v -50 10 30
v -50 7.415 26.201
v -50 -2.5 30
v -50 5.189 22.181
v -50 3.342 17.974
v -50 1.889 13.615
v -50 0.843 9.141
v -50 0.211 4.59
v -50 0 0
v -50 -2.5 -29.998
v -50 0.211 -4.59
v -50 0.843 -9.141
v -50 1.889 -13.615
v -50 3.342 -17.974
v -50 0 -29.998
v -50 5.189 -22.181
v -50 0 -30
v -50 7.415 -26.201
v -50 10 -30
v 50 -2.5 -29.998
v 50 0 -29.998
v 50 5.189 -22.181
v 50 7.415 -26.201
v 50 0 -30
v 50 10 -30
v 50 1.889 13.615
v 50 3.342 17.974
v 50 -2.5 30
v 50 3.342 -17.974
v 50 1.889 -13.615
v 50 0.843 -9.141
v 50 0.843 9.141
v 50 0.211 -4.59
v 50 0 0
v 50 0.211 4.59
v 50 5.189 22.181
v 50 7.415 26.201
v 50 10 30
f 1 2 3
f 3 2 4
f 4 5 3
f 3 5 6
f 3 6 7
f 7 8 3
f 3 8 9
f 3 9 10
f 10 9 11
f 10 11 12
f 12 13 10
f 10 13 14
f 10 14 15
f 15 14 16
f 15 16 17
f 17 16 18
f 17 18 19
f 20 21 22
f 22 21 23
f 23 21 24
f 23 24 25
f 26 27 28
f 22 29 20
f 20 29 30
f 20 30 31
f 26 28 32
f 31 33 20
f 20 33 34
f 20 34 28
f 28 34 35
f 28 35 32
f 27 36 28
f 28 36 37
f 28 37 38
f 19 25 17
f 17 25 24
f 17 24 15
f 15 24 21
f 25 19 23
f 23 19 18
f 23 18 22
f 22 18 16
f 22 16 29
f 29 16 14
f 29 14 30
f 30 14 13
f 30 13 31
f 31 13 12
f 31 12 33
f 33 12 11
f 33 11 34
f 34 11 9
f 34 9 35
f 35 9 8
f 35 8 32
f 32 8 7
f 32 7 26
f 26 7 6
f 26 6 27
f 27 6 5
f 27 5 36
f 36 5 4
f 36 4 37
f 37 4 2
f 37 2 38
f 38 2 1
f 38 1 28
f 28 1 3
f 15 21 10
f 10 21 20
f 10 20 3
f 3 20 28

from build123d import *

# Parameters (mm, degrees)
SKETCH1_W               = 100
SKETCH1_H               = 60
BOSS_EXTRUDE4_DEPTH     = 10
CUT_EXTRUDE1_DEPTH      = 105.880884817
CUT_EXTRUDE1_DEPTH_BACK = 100
SKETCH3_W               = 59.99788365
SKETCH3_H               = 10
BOSS_EXTRUDE5_DEPTH     = 100
SKETCH4_W               = 100
SKETCH4_H               = 5
CUT_EXTRUDE2_DEPTH      = 60
SKETCH5_W               = 100
SKETCH5_H               = 2.5
CUT_EXTRUDE3_DEPTH      = 60


with BuildPart() as part:
    # Sketch1 → Boss-Extrude4 (new body)
    with BuildSketch(Plane(origin=(0, 0, 0), x_dir=(1, 0, 0), z_dir=(0, 1, 0))):
        Rectangle(SKETCH1_W, SKETCH1_H)
    extrude(amount=BOSS_EXTRUDE4_DEPTH)

    # Sketch2 → Cut-Extrude1 (cut, two sides: drawn at the far end of the back side and taken through both)
    with BuildSketch(Plane(origin=(50, 0, 0), x_dir=(0, 0, -1), z_dir=(1, 0, 0)).offset(-CUT_EXTRUDE1_DEPTH_BACK)):
        with BuildLine():
            Line((-135.324200485, 88.993150364), (-30, 10))
            ThreePointArc((-30, 10), (0, 0), (30, 10))
            Line((30, 10), (135.324200485, 88.993150364))
            Line((135.324200485, 88.993150364), (135.324200485, 352.303651576))
            Line((135.324200485, 352.303651576), (-135.324200485, 352.303651576))
            Line((-135.324200485, 352.303651576), (-135.324200485, 88.993150364))
        make_face()
    extrude(amount=CUT_EXTRUDE1_DEPTH + CUT_EXTRUDE1_DEPTH_BACK, mode=Mode.SUBTRACT)


with BuildPart() as cut_extrude1_piece_1:
    # of the separate pieces the step leaves, piece 1, a body of its own (cut_extrude1_pieces)
    add(part.part.solids().sort_by_distance((50, 0, 30))[0])



with BuildPart() as cut_extrude1_piece_2:
    # of the separate pieces the step leaves, piece 2, a body of its own (cut_extrude1_pieces)
    add(part.part.solids().sort_by_distance((50, 0, -30))[0])


with BuildPart() as cut_extrude1_piece_1_1:
    add(cut_extrude1_piece_1.part)

    add(cut_extrude1_piece_2.part)  # Boss-Extrude5 merges Cut-Extrude1 piece 2
    # Sketch3 → Boss-Extrude5 (add)
    with BuildSketch(Plane(origin=(50, 0, 0), x_dir=(0, 0, -1), z_dir=(1, 0, 0))):
        with Locations((-0.001058175, -5)):
            Rectangle(SKETCH3_W, SKETCH3_H)
    extrude(amount=-BOSS_EXTRUDE5_DEPTH)

    # Sketch4 → Cut-Extrude2 (cut)
    with BuildSketch(Plane(origin=(0, 0, -29.99788365), x_dir=(-1, 0, 0), z_dir=(0, 0, -1))):
        with Locations((0, -7.5)):
            Rectangle(SKETCH4_W, SKETCH4_H)
    extrude(amount=-CUT_EXTRUDE2_DEPTH, mode=Mode.SUBTRACT)

    # Sketch5 → Cut-Extrude3 (cut)
    with BuildSketch(Plane(origin=(0, 0, -29.99788365), x_dir=(-1, 0, 0), z_dir=(0, 0, -1))):
        with Locations((0, -3.75)):
            Rectangle(SKETCH5_W, SKETCH5_H)
    extrude(amount=-CUT_EXTRUDE3_DEPTH, mode=Mode.SUBTRACT)


solid = cut_extrude1_piece_1_1.part
